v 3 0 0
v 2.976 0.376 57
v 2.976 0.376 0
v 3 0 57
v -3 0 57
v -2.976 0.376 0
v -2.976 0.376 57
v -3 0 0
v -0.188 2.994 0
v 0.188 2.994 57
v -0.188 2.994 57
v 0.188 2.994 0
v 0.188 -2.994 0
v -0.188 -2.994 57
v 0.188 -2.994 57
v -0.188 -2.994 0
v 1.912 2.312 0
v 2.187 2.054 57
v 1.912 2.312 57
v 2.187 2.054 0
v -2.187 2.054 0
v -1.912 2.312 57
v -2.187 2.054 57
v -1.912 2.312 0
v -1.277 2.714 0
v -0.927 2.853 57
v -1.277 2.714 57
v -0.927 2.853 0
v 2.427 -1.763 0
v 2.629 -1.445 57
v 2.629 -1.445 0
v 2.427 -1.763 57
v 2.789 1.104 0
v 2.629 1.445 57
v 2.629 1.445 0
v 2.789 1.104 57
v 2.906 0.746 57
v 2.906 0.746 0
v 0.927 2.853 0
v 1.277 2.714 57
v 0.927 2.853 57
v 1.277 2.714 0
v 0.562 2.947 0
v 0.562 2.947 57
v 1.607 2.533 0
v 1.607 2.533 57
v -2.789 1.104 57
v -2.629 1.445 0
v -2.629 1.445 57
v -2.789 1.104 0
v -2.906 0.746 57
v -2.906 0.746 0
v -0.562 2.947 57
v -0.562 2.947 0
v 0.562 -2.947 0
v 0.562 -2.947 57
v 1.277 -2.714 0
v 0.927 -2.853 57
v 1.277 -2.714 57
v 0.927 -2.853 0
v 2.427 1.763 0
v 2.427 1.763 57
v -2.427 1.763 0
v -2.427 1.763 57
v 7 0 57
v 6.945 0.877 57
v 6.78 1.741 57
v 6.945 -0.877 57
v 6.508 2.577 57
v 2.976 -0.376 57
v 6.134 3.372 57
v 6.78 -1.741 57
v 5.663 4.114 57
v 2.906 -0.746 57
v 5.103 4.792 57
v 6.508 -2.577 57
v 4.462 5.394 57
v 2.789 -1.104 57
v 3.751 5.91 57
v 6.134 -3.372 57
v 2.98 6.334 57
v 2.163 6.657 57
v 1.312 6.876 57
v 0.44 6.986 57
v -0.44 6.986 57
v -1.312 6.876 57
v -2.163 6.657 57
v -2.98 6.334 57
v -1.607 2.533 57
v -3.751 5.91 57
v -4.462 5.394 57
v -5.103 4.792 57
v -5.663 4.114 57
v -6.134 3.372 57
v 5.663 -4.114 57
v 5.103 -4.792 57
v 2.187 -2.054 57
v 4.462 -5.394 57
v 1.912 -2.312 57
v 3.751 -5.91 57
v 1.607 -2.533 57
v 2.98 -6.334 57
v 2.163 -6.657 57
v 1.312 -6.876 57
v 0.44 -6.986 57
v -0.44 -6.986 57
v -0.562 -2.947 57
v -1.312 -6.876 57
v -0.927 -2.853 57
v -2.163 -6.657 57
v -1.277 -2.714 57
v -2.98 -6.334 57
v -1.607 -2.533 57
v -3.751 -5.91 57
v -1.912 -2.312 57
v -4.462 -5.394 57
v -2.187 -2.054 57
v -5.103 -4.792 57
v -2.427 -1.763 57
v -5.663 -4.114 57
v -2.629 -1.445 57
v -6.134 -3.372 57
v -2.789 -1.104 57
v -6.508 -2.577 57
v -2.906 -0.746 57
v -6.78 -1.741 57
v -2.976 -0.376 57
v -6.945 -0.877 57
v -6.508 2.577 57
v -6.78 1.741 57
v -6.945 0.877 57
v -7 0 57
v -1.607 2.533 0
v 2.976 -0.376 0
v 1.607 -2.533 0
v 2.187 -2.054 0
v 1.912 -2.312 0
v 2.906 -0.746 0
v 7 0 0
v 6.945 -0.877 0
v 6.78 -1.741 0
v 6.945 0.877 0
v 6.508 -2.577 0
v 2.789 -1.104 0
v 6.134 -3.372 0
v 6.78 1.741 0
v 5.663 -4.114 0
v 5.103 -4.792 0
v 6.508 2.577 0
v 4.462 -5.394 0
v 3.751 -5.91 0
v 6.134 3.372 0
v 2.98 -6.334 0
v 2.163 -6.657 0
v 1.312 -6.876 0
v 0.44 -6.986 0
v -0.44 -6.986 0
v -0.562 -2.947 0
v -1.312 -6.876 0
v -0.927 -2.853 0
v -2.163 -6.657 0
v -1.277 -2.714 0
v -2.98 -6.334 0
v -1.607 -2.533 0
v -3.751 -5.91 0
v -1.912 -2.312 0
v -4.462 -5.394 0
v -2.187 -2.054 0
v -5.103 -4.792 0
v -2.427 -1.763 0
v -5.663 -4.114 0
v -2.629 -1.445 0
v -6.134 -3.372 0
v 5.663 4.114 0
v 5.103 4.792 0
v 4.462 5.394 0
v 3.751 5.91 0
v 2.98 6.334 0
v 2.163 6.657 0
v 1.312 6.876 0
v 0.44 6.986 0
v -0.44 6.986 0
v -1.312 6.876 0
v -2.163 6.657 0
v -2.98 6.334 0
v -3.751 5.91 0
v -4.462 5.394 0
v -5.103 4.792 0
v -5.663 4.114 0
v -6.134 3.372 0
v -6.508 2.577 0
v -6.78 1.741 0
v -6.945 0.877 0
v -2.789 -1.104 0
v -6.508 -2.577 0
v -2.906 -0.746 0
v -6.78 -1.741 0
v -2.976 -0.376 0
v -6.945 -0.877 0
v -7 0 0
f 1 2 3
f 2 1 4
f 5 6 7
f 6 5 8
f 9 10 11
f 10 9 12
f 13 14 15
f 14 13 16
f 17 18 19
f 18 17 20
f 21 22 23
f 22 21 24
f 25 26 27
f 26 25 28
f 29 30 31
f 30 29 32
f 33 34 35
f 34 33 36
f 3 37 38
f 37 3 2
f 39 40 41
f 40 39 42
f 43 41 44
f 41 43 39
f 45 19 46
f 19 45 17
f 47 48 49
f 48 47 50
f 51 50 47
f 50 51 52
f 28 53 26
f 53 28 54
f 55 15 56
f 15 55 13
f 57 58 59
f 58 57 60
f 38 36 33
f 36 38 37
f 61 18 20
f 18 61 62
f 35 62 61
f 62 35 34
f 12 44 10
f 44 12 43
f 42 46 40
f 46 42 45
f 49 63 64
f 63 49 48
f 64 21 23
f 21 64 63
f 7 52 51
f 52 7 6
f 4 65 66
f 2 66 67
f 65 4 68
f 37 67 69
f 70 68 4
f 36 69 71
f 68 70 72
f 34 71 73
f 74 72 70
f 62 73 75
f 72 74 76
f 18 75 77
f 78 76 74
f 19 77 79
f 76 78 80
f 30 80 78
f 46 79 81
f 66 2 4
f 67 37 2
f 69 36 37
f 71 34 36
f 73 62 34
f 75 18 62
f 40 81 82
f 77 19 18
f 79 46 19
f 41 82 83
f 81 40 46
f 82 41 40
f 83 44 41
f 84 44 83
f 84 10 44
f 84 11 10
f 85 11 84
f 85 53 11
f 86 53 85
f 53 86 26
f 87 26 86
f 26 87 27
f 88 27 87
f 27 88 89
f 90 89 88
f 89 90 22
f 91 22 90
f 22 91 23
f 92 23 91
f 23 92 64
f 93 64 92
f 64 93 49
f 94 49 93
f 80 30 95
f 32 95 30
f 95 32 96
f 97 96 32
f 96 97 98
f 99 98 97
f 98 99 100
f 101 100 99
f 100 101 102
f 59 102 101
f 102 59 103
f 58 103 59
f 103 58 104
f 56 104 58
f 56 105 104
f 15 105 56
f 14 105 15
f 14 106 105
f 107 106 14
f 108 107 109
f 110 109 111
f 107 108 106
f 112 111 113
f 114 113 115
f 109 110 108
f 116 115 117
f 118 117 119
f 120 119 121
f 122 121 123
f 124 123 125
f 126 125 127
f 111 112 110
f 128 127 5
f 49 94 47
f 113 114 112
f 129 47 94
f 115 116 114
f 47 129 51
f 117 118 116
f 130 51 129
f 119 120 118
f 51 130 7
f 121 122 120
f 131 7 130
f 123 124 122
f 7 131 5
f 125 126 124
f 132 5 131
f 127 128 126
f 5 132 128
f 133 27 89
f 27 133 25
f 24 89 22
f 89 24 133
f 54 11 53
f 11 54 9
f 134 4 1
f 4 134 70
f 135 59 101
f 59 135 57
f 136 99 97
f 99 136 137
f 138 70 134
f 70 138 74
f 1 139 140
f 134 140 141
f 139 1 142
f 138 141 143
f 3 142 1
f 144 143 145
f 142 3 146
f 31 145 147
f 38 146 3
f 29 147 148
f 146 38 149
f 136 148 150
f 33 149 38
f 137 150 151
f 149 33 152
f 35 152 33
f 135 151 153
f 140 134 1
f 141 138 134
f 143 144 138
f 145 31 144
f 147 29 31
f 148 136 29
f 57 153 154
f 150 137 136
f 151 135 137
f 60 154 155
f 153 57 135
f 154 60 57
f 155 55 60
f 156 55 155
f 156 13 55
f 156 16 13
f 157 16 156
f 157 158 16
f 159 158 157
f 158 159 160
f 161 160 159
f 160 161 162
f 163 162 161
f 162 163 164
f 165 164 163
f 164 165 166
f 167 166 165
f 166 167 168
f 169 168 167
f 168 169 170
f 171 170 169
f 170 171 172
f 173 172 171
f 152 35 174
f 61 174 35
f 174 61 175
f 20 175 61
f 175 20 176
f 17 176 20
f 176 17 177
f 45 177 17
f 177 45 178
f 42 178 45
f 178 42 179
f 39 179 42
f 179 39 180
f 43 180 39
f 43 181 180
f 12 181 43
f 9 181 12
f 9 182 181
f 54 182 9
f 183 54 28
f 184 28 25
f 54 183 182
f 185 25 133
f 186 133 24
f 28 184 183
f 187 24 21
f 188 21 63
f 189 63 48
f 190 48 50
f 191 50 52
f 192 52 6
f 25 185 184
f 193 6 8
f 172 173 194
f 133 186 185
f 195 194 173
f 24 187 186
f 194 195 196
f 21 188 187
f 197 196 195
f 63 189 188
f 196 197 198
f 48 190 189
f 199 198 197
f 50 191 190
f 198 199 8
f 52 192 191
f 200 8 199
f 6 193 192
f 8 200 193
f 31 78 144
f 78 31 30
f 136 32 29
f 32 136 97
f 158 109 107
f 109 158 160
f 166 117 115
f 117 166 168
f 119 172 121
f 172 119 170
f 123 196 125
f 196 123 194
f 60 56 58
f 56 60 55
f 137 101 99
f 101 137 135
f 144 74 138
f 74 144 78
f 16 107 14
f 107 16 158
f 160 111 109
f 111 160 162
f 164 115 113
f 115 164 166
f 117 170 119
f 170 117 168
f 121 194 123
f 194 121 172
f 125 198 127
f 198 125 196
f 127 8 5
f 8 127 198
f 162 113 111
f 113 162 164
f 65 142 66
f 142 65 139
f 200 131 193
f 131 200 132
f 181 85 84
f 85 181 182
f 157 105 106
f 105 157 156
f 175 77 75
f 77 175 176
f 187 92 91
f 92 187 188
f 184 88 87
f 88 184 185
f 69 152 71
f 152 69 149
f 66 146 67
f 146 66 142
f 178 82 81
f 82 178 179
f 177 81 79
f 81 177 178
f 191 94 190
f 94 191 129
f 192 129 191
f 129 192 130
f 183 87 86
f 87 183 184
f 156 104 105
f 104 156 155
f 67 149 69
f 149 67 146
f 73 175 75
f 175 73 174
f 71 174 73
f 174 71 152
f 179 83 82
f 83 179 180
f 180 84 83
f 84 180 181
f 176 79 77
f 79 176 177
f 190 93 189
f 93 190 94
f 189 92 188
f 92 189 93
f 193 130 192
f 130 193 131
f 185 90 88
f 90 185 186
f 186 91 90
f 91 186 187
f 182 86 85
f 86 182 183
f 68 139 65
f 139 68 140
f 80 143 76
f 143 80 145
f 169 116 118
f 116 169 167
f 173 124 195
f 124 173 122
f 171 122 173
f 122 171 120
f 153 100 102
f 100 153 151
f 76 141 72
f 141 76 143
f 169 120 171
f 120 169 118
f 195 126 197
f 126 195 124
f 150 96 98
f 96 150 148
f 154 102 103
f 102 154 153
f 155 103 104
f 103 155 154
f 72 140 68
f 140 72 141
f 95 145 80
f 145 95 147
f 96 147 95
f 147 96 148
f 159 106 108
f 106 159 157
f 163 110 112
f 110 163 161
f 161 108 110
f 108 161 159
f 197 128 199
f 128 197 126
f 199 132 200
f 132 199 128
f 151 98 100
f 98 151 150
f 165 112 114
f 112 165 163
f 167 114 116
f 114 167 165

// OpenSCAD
$fn = 50;


difference() {
	union() {
		cylinder(h = 57, r = 7.0000000000);
	}
	union() {
		cylinder(h = 57, r = 3.0000000000);
		cylinder(h = 57, r = 3.0000000000);
		cylinder(h = 57, r = 1.5000000000);
		cylinder(h = 57, r = 1.5000000000);
		cylinder(h = 57, r = 1.5000000000);
		cylinder(h = 57, r = 1.5000000000);
		cylinder(h = 57, r = 1.5000000000);
		cylinder(h = 57, r = 1.5000000000);
	}
}
